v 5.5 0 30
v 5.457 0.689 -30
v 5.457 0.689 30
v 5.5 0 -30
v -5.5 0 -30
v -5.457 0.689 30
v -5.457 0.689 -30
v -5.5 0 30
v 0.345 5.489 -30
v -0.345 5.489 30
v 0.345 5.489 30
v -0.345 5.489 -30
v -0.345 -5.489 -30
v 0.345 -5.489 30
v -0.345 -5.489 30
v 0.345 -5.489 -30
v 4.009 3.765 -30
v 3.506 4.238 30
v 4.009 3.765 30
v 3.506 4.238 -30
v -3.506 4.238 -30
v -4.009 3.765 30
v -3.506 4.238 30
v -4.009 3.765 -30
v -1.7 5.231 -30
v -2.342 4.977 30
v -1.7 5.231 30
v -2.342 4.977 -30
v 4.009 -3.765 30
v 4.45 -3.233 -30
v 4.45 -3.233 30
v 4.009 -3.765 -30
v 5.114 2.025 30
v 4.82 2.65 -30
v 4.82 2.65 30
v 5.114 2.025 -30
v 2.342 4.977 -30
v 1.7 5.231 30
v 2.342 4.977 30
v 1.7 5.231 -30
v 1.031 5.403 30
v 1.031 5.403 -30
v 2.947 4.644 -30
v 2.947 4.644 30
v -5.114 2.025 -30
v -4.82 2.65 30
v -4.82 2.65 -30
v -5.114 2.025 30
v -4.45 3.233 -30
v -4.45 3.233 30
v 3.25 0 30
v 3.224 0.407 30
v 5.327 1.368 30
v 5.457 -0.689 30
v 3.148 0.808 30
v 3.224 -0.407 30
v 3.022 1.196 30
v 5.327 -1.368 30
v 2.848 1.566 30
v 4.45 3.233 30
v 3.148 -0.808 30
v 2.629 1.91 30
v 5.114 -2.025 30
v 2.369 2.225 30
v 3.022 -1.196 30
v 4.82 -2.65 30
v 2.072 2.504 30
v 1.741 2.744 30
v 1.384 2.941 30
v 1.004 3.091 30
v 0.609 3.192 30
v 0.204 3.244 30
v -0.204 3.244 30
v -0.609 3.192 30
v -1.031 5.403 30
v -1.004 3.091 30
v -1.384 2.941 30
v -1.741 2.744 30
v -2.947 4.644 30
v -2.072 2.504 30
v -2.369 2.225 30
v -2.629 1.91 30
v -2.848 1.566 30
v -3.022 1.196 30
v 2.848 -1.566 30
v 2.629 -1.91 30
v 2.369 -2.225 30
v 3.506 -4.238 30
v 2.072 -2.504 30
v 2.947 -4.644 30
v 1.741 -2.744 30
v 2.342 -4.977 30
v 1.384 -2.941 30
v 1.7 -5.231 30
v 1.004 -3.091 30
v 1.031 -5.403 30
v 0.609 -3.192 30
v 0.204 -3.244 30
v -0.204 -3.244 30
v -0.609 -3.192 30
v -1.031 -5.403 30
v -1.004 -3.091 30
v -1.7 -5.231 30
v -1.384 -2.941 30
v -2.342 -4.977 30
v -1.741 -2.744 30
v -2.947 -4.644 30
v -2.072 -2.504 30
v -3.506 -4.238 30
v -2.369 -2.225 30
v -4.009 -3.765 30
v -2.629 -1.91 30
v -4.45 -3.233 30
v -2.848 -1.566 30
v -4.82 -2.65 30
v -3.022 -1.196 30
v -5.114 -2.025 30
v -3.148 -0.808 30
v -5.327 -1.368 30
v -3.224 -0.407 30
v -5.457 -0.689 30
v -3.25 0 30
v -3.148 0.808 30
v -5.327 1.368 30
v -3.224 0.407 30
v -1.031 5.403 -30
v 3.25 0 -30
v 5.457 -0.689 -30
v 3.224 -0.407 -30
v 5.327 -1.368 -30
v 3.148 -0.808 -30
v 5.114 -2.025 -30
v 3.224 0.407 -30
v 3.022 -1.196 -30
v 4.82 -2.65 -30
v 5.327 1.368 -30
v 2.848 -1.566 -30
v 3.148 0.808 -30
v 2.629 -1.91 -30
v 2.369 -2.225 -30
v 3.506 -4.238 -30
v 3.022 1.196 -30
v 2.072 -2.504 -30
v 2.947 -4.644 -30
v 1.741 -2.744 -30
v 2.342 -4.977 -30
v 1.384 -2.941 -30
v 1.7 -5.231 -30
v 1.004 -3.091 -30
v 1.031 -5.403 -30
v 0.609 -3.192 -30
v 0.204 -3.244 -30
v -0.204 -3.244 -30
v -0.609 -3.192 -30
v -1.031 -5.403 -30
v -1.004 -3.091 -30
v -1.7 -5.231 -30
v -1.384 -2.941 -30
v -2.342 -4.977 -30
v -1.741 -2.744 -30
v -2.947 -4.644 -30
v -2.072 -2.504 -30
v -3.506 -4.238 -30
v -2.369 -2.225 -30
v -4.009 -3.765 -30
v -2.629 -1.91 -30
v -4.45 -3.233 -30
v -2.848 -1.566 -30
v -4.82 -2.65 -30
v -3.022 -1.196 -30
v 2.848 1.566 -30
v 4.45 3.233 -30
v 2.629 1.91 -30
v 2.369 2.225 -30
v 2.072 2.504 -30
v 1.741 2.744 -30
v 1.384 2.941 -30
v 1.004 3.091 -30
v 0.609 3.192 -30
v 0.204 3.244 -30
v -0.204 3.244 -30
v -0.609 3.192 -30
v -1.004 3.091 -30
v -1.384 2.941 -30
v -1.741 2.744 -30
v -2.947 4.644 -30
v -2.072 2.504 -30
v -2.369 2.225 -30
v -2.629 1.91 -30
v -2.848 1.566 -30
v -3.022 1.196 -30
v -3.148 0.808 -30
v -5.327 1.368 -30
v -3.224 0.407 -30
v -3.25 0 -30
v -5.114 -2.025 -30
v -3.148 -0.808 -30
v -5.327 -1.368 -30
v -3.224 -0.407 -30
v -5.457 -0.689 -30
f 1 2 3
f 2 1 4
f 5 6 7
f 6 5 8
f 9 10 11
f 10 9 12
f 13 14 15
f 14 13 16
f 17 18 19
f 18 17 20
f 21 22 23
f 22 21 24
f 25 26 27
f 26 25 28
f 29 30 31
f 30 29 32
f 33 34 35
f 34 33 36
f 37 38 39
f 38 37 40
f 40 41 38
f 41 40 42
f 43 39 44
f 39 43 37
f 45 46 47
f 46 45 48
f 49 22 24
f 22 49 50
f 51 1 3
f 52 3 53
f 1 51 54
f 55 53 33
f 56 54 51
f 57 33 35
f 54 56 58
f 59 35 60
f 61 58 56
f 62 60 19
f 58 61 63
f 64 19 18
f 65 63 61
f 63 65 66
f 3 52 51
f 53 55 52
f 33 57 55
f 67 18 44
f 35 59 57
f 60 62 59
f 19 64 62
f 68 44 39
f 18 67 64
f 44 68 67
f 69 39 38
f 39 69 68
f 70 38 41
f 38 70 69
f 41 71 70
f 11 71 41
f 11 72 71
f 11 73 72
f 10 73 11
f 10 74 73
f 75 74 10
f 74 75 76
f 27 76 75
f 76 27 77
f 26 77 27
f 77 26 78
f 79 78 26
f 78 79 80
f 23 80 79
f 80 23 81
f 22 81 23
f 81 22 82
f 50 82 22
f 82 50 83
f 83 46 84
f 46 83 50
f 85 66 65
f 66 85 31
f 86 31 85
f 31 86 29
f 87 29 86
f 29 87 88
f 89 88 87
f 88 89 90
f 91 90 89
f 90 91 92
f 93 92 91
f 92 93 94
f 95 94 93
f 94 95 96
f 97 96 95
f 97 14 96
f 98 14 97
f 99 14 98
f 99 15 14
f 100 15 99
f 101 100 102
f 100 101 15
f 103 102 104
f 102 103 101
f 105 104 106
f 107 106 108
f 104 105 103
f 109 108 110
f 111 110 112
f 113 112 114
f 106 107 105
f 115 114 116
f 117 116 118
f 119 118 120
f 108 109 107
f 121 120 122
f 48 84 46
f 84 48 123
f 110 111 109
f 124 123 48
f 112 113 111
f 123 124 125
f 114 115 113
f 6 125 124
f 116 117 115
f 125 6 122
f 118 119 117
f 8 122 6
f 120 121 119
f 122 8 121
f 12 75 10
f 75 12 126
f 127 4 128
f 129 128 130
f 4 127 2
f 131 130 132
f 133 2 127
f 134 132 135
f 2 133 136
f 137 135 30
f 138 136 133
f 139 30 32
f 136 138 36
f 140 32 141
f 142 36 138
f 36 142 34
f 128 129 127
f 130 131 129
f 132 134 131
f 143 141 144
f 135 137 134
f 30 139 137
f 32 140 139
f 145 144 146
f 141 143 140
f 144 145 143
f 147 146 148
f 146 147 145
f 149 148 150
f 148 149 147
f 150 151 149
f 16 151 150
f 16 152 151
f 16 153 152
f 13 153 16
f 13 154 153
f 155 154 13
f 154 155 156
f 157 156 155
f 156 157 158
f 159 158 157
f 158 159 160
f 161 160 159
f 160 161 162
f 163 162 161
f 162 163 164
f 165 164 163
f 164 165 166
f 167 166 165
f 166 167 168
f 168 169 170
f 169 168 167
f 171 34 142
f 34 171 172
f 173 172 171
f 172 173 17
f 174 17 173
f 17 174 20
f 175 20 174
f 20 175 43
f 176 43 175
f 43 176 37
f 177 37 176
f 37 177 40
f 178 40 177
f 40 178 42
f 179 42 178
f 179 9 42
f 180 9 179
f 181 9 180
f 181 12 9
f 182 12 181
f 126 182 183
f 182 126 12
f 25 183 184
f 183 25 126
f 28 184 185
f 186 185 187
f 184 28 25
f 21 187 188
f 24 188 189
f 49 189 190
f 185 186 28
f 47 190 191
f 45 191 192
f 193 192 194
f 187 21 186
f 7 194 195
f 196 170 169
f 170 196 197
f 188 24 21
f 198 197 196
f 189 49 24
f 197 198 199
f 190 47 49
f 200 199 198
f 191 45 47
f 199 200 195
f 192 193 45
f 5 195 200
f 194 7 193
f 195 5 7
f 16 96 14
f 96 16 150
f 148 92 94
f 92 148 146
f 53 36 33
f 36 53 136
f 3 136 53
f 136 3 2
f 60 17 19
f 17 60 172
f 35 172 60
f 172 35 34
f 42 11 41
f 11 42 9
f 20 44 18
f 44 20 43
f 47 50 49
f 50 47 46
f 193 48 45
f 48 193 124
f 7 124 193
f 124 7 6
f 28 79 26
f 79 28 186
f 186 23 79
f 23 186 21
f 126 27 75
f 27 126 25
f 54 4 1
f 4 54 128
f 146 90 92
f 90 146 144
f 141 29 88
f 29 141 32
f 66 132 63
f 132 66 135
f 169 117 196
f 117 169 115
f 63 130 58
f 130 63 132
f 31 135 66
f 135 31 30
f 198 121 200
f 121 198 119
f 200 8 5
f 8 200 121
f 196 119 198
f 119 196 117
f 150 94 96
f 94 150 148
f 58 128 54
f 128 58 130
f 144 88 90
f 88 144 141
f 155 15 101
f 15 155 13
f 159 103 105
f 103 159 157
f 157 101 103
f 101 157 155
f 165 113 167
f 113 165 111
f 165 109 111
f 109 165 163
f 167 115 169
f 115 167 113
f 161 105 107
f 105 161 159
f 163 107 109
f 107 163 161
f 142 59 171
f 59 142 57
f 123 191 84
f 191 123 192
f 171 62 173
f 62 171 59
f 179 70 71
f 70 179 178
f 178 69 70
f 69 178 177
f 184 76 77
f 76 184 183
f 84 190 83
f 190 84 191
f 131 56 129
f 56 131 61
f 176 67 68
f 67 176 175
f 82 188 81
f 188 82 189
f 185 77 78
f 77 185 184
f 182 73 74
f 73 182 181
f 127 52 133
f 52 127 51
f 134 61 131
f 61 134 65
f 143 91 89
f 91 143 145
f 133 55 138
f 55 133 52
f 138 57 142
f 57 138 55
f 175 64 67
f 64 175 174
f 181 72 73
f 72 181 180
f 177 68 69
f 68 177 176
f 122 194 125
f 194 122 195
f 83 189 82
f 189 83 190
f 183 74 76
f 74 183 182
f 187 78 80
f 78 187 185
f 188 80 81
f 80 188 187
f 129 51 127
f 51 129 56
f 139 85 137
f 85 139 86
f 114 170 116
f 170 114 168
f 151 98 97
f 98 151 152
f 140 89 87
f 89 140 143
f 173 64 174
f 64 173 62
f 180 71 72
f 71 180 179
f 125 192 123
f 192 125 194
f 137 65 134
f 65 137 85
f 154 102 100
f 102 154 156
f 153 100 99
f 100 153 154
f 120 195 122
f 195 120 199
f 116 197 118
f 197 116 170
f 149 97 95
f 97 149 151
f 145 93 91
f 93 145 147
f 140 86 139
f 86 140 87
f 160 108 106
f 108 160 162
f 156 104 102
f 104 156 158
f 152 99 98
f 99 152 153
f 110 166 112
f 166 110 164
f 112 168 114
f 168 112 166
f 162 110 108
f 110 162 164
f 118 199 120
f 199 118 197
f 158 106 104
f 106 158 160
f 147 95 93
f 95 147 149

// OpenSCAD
$fn = 50;


difference() {
	union() {
		translate(v = [0, 0, -30.0000000000]) {
			cylinder(h = 60, r = 5.5000000000);
		}
	}
	union() {
		translate(v = [0, 0, -100.0000000000]) {
			cylinder(h = 200, r = 3.2500000000);
		}
	}
}
